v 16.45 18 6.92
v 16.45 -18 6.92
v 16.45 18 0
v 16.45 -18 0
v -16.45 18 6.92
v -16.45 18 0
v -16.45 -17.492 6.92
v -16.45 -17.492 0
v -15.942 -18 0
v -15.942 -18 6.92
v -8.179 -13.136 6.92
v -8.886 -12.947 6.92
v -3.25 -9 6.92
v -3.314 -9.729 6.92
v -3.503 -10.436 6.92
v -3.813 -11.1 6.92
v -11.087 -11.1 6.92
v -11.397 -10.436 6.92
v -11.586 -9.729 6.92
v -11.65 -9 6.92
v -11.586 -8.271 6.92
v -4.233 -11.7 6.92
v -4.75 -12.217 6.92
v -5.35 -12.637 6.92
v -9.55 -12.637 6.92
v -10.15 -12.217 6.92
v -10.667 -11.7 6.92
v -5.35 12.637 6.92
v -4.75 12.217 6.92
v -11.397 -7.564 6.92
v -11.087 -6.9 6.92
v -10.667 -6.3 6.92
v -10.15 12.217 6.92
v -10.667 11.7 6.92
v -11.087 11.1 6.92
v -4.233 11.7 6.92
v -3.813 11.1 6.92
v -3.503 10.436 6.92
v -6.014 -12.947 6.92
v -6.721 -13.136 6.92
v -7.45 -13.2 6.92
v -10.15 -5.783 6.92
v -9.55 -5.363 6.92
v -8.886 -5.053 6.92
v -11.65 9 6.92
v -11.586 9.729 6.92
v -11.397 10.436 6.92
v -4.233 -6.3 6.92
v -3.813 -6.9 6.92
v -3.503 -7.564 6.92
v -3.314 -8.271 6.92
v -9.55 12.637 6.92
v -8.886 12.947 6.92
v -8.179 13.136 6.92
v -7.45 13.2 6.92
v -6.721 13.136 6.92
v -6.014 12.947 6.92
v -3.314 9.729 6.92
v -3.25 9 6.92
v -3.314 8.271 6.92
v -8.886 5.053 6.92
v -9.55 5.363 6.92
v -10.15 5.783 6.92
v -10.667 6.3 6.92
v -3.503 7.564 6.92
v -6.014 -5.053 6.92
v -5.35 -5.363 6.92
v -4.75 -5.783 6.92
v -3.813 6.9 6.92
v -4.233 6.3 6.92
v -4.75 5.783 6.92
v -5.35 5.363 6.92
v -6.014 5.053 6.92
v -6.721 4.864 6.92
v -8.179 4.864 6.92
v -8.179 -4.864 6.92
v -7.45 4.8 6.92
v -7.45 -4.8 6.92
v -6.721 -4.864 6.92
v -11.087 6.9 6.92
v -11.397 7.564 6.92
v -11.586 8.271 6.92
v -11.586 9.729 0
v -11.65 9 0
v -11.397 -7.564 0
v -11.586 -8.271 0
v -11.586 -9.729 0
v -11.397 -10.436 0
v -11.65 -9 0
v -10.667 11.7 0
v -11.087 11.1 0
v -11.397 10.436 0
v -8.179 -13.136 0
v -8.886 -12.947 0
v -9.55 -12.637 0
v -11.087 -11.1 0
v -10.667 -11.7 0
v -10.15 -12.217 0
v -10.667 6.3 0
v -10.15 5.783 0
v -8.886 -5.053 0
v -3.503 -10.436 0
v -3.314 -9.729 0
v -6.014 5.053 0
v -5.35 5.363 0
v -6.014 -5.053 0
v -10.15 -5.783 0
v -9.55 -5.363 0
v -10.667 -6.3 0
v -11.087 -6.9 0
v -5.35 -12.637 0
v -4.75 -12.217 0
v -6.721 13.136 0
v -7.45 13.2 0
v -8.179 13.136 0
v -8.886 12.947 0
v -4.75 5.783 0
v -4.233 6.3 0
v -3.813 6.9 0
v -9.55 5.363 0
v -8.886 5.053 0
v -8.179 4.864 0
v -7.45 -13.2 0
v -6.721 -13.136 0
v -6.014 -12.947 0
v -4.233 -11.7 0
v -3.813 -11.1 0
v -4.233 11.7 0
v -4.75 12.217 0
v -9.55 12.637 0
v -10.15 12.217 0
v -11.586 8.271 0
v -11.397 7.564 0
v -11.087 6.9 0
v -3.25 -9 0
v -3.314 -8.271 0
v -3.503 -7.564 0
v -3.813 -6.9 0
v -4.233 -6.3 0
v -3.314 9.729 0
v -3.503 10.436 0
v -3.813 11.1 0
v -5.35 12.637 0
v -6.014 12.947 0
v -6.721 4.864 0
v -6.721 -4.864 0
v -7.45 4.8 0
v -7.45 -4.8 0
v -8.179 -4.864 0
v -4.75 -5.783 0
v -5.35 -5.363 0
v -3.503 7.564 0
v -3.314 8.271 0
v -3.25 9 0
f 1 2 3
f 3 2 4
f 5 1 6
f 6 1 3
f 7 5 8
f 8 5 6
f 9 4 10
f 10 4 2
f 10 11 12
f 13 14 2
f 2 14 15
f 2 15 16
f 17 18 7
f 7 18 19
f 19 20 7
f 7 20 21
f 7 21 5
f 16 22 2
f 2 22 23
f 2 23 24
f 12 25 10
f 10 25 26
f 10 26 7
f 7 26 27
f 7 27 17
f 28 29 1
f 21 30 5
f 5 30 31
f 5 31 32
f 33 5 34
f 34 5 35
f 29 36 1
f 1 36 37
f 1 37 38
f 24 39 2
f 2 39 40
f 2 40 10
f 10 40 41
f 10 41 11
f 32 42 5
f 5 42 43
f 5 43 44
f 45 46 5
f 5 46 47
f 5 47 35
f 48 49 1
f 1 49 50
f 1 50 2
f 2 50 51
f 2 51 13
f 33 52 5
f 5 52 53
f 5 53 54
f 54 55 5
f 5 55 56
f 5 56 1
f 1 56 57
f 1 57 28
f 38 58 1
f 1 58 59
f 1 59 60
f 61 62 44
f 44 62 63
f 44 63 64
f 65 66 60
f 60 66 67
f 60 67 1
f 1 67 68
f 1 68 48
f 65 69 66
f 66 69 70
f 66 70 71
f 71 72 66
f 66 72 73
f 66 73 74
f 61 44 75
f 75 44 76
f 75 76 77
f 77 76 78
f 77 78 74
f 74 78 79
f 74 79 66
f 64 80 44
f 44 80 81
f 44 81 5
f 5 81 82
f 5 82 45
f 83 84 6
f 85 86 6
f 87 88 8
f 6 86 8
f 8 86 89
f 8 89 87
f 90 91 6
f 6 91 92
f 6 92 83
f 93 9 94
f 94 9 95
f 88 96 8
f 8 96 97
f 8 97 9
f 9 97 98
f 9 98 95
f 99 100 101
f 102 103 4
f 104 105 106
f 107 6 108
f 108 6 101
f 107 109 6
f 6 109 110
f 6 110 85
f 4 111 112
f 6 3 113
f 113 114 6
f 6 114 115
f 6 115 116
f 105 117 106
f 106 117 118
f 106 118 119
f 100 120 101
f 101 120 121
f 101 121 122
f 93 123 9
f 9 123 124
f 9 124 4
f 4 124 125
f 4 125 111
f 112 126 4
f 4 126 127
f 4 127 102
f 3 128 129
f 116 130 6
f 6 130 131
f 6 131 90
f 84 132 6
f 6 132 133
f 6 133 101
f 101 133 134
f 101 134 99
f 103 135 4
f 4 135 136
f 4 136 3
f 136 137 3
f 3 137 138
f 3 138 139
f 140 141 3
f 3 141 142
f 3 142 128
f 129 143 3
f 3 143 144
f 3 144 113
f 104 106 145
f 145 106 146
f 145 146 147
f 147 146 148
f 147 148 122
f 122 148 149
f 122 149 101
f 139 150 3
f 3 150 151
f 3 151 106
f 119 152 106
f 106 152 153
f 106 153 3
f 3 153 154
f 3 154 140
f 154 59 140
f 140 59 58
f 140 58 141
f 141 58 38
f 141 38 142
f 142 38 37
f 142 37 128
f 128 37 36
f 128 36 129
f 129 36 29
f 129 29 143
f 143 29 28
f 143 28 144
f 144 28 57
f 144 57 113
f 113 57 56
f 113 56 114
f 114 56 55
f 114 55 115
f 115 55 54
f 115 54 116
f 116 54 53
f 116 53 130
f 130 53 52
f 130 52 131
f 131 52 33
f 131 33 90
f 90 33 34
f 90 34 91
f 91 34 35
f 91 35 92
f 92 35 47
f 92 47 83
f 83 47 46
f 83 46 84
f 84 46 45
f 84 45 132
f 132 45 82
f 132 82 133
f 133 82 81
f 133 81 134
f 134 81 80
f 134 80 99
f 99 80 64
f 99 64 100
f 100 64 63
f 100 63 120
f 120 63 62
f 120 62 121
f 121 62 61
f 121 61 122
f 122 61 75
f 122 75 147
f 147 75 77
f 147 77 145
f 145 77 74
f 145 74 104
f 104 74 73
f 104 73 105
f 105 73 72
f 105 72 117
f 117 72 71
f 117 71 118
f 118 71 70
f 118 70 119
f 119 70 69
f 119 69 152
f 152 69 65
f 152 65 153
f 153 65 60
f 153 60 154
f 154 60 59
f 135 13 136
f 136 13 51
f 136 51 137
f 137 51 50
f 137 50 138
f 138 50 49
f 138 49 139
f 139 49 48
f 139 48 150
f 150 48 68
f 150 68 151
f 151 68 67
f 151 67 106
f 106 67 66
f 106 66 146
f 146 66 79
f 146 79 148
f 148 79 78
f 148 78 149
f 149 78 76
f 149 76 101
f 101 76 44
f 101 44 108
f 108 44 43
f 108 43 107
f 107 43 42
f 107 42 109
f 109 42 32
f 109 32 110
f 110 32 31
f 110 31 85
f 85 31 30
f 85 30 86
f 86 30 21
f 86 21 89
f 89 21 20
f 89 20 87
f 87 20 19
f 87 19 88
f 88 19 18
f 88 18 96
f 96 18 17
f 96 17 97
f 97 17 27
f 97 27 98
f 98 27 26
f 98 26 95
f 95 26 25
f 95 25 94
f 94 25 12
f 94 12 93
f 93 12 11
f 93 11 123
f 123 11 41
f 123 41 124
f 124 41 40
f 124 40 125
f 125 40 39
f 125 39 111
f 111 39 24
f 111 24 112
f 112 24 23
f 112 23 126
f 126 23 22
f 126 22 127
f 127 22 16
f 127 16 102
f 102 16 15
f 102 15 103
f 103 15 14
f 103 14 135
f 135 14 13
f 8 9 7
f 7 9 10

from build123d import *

# Parameters (mm, degrees)
SKETCH1_W            = 32.9
SKETCH1_H            = 36
BOSS_EXTRUDE1_DEPTH  = 6.92
M8_CLEARANCE_HOLE1_D = 8.4
CHAMFER1_SIZE        = 0.508


with BuildPart() as part:
    # Sketch1 → Boss-Extrude1 (new body)
    with BuildSketch(Plane.XY):
        Rectangle(SKETCH1_W, SKETCH1_H)
    extrude(amount=BOSS_EXTRUDE1_DEPTH)

    # M8 Clearance Hole1 (through all)
    with Locations(Plane.XY.offset(6.92)):
        with Locations((-7.449999987, -9), (-7.449999987, 9)):
            Hole(M8_CLEARANCE_HOLE1_D / 2)

    # Chamfer1
    chamfer1_edges = [part.edges().sort_by_distance(p)[0] for p in [
        (-16.45, -18, 3.46),
    ]]
    chamfer(chamfer1_edges, length=CHAMFER1_SIZE)


solid = part.part
